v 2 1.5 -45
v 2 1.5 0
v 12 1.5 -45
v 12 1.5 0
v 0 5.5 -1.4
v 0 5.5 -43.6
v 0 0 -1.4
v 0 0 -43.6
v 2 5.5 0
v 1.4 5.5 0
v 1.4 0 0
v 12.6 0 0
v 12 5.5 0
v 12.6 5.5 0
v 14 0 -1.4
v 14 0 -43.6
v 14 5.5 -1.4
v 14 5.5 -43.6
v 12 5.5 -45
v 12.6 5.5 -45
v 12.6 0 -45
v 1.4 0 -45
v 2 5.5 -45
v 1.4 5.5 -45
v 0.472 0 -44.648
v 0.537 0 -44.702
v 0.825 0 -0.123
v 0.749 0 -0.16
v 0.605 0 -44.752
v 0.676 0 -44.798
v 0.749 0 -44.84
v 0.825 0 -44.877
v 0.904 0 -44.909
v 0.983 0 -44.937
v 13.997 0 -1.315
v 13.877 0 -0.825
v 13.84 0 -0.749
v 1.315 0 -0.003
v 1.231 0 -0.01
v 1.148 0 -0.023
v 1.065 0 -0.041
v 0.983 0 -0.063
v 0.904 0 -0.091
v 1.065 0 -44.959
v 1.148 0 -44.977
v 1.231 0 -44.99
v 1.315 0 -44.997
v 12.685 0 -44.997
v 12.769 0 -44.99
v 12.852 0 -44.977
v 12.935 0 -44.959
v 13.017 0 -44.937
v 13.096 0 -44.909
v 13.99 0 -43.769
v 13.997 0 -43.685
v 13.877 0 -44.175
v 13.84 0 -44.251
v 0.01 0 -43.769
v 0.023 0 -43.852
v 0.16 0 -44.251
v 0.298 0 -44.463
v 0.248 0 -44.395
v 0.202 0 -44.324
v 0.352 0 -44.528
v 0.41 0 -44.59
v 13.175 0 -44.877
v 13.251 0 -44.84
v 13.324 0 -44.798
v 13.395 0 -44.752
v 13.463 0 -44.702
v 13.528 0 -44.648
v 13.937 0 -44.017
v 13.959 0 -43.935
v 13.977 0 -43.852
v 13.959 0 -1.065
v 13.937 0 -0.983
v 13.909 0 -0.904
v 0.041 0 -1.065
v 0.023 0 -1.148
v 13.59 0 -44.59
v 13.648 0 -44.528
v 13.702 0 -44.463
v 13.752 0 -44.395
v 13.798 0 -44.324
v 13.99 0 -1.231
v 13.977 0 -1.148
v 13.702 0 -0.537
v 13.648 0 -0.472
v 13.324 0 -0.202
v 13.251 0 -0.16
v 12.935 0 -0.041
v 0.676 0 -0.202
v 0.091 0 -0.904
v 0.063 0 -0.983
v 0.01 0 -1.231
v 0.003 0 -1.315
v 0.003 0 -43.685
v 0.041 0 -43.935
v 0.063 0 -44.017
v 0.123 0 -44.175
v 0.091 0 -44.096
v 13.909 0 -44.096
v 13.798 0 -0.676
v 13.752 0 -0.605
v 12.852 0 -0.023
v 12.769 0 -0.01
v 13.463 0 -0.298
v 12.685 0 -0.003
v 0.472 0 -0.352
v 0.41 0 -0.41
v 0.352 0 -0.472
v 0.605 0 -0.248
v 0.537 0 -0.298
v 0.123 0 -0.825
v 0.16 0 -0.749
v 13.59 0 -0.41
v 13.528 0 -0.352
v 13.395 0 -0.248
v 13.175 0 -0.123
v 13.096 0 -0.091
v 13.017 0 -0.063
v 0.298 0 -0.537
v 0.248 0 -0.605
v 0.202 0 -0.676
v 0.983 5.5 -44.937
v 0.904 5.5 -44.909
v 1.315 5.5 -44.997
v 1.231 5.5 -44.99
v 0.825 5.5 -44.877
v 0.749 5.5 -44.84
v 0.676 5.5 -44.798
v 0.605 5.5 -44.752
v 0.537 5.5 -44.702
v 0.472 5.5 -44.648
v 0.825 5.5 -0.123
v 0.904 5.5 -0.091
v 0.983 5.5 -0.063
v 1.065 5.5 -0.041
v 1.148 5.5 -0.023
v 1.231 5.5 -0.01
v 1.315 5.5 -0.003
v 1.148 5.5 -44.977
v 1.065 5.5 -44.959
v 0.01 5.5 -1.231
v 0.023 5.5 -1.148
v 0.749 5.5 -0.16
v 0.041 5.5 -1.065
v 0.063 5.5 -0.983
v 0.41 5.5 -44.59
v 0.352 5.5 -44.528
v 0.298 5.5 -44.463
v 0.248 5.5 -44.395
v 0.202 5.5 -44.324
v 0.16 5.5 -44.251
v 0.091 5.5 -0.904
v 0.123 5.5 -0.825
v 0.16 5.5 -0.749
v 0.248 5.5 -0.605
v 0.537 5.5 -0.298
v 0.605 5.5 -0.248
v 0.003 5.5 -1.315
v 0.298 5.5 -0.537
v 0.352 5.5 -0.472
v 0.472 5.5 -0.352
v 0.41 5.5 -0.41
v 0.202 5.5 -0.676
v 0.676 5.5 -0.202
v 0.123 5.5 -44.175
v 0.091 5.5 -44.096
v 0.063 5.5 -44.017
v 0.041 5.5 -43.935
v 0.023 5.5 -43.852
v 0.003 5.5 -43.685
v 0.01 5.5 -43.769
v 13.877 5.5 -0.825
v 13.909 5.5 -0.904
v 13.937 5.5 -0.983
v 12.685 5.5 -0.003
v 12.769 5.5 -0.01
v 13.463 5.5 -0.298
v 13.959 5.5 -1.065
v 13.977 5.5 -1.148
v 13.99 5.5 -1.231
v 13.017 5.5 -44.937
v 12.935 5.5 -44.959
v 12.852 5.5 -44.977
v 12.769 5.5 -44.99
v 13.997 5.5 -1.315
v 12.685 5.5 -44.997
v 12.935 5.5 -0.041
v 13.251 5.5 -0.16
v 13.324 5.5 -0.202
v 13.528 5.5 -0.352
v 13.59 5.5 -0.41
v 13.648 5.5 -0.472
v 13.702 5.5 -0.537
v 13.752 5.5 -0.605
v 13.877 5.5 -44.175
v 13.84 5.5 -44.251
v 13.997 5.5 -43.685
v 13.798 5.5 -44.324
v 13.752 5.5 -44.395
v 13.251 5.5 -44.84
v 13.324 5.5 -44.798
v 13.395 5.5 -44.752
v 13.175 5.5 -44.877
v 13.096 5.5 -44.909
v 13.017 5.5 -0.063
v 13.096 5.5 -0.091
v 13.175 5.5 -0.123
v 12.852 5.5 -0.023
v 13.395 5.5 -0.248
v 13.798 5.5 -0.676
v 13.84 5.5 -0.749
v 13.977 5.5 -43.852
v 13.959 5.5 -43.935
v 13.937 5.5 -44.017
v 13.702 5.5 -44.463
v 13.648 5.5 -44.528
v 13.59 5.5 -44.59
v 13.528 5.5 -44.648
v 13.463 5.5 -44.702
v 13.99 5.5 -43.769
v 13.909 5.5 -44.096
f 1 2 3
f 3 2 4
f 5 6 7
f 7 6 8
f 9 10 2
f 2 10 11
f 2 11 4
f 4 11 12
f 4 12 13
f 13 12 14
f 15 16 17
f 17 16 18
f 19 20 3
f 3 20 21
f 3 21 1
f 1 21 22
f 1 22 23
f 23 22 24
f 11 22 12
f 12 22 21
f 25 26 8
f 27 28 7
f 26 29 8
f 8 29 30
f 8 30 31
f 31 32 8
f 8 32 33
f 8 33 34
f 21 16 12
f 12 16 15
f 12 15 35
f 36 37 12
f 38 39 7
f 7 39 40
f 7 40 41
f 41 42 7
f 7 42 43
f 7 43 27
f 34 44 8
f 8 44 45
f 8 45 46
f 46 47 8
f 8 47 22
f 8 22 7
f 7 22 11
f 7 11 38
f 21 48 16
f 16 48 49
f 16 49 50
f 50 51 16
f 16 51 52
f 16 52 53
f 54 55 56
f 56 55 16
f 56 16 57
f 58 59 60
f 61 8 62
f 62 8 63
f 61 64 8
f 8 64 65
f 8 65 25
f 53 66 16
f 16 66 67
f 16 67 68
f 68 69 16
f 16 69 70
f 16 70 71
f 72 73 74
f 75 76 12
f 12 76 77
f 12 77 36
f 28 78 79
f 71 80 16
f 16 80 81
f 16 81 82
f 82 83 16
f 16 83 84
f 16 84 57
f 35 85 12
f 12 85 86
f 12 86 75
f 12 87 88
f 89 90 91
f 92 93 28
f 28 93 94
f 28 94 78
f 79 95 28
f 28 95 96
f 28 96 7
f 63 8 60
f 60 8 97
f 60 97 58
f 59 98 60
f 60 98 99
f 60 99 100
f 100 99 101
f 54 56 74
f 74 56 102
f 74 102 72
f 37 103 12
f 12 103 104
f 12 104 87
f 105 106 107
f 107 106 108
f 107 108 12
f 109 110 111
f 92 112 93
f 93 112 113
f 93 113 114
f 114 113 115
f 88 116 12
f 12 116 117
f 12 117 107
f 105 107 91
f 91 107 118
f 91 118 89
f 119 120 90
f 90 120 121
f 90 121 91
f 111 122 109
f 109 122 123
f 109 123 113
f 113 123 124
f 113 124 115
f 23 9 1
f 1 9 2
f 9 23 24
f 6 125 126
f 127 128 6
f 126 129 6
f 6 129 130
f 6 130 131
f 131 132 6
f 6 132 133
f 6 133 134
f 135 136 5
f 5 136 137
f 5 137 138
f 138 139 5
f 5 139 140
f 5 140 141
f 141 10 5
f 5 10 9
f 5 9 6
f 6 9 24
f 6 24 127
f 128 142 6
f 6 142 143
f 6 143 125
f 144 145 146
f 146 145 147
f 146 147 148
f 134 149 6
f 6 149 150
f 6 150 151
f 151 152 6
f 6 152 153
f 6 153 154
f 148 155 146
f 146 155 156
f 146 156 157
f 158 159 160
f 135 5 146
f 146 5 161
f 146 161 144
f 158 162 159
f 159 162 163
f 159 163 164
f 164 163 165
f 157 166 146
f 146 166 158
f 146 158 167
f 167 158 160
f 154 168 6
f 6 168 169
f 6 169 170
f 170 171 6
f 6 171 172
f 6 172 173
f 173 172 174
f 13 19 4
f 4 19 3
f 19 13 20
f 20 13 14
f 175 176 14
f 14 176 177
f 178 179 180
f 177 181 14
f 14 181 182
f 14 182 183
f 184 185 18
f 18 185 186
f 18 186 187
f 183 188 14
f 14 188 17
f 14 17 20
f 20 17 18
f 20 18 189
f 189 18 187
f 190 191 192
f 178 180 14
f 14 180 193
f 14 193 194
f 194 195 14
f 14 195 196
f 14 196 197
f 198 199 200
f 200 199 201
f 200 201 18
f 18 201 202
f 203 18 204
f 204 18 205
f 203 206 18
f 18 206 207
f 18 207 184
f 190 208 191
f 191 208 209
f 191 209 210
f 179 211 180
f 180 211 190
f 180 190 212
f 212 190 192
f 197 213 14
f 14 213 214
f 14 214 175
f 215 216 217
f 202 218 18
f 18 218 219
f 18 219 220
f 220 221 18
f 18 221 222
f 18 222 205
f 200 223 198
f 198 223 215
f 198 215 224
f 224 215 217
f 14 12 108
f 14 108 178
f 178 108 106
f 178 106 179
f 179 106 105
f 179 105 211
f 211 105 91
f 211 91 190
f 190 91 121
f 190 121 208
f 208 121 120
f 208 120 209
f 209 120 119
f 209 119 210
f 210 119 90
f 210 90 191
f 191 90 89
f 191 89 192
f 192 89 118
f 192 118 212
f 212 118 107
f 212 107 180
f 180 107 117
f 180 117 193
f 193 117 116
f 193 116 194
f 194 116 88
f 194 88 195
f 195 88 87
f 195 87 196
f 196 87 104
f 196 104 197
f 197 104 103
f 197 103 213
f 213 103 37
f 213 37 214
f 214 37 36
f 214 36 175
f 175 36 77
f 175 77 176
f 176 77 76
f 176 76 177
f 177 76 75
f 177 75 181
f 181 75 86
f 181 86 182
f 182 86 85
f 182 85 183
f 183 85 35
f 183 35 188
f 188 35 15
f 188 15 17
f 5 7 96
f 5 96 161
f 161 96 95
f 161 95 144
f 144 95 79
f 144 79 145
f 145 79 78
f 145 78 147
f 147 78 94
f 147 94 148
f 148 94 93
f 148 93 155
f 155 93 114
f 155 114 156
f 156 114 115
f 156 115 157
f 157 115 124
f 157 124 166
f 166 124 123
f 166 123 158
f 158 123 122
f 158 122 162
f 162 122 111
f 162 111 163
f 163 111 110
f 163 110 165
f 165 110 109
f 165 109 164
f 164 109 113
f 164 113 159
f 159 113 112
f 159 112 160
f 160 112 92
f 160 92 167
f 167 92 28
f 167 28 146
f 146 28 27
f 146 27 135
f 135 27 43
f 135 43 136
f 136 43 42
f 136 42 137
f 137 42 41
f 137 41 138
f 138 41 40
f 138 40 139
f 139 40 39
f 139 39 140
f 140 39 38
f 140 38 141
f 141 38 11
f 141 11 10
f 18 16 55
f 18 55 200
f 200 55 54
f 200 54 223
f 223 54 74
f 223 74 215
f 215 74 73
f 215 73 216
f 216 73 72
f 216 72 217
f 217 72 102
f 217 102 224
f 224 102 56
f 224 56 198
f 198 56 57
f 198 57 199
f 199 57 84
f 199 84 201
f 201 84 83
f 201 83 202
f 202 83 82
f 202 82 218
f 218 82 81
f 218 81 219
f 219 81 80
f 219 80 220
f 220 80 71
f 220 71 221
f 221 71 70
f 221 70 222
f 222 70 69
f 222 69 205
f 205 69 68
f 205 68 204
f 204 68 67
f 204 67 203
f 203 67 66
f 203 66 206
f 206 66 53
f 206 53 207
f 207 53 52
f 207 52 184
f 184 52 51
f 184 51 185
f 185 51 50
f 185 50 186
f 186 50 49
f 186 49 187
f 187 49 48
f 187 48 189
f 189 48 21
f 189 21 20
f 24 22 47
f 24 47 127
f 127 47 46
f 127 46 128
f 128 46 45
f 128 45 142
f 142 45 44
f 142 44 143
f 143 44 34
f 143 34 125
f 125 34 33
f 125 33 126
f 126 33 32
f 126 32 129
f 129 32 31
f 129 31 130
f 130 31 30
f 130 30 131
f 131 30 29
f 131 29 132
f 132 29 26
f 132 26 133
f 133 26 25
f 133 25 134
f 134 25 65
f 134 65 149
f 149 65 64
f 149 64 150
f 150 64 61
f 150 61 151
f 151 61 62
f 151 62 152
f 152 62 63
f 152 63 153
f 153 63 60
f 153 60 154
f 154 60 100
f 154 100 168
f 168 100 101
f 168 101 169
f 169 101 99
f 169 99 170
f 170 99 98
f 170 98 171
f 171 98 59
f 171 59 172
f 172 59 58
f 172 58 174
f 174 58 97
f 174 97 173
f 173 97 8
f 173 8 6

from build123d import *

# Parameters (mm, degrees)
SKETCH_1_W      = 14
SKETCH_1_H      = 45
EXTRUDE_1_DEPTH = 1.5
SKETCH_2_W      = 2
SKETCH_2_H      = 45
EXTRUDE_2_DEPTH = 4
FILLET_1_R      = 1.4


with BuildPart() as part:
    # 草图1 → 凸台-拉伸1 (new body)
    with BuildSketch(Plane(origin=(0, 0, 0), x_dir=(1, 0, 0), z_dir=(0, 1, 0))):
        with Locations((7, 22.5)):
            Rectangle(SKETCH_1_W, SKETCH_1_H)
    extrude(amount=EXTRUDE_1_DEPTH)

    # 草图2 → 凸台-拉伸2 (add)
    with BuildSketch(Plane(origin=(0, 1.5, 0), x_dir=(1, 0, 0), z_dir=(0, 1, 0))):
        with Locations((1, 22.5)):
            Rectangle(SKETCH_2_W, SKETCH_2_H)
        with Locations((13, 22.5)):
            Rectangle(SKETCH_2_W, SKETCH_2_H)
    extrude(amount=EXTRUDE_2_DEPTH)

    # 圆角1
    fillet_1_edges = [part.edges().sort_by_distance(p)[0] for p in [
        (0, 2.75, -45),
        (14, 2.75, -45),
        (14, 2.75, 0),
        (0, 2.75, 0),
    ]]
    fillet(fillet_1_edges, radius=FILLET_1_R)


solid = part.part
